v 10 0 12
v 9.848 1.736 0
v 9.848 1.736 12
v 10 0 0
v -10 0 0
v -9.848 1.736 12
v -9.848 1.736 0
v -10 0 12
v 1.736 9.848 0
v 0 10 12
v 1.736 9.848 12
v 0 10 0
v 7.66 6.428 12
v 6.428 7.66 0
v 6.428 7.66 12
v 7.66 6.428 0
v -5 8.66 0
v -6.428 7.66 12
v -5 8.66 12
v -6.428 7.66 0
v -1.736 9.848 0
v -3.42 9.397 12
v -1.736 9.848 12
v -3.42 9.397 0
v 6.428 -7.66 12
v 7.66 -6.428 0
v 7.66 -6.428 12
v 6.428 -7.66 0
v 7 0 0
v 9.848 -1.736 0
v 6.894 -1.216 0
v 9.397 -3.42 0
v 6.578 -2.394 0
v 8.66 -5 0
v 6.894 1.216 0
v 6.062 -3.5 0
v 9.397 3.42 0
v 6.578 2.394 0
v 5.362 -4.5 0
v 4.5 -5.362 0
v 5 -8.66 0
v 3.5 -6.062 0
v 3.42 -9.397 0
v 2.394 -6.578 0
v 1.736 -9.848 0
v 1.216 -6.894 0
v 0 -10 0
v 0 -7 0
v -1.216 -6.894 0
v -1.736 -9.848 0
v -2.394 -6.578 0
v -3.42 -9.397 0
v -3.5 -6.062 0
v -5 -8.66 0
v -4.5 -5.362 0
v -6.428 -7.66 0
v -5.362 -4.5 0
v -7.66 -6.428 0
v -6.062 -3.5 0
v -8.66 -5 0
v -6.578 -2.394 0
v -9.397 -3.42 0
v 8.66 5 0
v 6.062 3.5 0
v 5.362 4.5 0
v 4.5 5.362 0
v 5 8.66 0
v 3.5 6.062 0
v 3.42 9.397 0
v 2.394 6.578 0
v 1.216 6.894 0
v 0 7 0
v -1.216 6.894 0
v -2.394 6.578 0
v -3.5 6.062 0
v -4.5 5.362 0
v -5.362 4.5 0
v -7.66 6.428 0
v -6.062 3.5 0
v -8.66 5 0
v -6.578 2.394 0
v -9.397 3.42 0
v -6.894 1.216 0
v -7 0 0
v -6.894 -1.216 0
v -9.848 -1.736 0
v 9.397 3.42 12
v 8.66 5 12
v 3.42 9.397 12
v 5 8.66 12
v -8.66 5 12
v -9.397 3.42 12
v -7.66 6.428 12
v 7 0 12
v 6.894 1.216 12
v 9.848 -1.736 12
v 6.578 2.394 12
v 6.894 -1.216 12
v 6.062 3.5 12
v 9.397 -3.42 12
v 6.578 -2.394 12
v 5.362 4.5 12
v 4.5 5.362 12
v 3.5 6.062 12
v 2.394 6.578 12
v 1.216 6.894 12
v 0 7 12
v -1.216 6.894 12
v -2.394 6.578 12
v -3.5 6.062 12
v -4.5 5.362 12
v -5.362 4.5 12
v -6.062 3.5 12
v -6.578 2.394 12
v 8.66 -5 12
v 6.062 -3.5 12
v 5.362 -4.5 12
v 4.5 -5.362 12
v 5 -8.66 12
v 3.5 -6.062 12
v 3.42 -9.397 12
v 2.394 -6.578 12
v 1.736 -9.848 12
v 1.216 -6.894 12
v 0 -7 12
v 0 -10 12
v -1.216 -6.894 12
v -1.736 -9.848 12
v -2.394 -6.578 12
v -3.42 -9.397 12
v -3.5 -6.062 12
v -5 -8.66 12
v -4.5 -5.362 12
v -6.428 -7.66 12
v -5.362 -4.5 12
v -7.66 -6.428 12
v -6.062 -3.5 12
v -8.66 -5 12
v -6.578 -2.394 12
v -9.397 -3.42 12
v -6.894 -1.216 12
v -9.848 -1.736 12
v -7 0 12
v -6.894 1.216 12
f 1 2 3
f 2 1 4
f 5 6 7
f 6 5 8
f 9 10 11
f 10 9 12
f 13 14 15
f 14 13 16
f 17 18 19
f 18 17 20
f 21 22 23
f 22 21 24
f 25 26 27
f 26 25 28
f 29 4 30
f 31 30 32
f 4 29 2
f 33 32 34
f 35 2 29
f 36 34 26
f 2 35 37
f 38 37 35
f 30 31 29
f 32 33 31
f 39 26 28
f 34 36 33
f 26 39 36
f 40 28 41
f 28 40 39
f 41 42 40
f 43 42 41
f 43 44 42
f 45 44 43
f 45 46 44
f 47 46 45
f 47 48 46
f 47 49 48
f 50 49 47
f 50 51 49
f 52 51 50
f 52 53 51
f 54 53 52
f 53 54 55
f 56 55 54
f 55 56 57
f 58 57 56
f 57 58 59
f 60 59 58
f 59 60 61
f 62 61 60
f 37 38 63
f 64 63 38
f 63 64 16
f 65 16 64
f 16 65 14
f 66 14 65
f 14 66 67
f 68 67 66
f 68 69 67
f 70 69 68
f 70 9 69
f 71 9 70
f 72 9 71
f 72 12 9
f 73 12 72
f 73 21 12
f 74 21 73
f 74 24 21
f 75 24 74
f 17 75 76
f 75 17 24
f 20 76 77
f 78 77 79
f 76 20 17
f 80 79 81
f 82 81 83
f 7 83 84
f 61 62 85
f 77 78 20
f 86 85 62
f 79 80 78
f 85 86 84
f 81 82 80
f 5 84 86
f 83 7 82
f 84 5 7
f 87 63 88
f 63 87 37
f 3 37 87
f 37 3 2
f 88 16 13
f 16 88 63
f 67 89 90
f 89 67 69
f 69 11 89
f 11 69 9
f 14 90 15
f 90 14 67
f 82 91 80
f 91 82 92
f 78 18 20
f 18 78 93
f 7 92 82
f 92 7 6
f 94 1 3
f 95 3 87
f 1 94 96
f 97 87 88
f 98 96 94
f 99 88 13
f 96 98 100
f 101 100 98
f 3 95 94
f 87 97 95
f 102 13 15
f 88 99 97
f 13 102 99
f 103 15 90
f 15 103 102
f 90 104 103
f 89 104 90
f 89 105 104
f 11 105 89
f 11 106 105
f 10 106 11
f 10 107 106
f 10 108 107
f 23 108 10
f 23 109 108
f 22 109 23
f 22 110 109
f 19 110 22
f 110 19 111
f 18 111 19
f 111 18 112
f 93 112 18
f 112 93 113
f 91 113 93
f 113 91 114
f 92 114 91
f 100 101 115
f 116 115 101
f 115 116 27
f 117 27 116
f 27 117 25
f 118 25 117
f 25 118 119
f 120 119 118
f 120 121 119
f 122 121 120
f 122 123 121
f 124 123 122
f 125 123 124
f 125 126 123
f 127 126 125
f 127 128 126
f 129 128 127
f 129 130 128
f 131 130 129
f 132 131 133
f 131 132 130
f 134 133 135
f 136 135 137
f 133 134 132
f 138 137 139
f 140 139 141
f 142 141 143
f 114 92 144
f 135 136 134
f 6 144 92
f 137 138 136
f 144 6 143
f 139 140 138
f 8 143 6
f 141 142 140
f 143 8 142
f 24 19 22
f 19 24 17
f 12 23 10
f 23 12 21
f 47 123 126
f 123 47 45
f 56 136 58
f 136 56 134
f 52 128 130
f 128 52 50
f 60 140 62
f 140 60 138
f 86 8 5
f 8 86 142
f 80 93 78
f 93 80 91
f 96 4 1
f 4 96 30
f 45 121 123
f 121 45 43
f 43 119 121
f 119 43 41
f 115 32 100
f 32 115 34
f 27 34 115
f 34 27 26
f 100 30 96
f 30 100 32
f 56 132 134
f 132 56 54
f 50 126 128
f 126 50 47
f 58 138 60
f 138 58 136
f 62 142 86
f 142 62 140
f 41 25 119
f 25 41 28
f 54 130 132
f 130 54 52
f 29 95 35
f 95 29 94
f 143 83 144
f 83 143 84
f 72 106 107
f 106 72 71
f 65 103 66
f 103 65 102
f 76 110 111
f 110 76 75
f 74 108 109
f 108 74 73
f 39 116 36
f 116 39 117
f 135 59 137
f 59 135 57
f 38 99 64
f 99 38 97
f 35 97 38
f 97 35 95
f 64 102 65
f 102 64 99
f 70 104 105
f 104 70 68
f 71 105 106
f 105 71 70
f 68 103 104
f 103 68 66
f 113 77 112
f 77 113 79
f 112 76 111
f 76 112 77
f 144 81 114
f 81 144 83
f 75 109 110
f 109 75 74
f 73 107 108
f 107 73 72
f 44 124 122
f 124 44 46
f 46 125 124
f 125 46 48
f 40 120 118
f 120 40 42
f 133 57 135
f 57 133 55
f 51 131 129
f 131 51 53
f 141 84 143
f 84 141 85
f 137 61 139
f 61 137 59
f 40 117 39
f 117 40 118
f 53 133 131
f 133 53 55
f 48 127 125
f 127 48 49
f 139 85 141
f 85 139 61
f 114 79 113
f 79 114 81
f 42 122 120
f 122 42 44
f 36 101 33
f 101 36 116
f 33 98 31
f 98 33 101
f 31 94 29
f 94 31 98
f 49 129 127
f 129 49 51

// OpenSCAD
// Parameters
height = 12;
outer_diameter = 20;
hole_diameter = 6;
resolution = 36;

// Cylinder
difference() {
  cylinder(h = height, r = outer_diameter / 2, $fn = resolution);
  cylinder(h = height, r = (outer_diameter - hole_diameter) / 2, $fn = resolution);
}
